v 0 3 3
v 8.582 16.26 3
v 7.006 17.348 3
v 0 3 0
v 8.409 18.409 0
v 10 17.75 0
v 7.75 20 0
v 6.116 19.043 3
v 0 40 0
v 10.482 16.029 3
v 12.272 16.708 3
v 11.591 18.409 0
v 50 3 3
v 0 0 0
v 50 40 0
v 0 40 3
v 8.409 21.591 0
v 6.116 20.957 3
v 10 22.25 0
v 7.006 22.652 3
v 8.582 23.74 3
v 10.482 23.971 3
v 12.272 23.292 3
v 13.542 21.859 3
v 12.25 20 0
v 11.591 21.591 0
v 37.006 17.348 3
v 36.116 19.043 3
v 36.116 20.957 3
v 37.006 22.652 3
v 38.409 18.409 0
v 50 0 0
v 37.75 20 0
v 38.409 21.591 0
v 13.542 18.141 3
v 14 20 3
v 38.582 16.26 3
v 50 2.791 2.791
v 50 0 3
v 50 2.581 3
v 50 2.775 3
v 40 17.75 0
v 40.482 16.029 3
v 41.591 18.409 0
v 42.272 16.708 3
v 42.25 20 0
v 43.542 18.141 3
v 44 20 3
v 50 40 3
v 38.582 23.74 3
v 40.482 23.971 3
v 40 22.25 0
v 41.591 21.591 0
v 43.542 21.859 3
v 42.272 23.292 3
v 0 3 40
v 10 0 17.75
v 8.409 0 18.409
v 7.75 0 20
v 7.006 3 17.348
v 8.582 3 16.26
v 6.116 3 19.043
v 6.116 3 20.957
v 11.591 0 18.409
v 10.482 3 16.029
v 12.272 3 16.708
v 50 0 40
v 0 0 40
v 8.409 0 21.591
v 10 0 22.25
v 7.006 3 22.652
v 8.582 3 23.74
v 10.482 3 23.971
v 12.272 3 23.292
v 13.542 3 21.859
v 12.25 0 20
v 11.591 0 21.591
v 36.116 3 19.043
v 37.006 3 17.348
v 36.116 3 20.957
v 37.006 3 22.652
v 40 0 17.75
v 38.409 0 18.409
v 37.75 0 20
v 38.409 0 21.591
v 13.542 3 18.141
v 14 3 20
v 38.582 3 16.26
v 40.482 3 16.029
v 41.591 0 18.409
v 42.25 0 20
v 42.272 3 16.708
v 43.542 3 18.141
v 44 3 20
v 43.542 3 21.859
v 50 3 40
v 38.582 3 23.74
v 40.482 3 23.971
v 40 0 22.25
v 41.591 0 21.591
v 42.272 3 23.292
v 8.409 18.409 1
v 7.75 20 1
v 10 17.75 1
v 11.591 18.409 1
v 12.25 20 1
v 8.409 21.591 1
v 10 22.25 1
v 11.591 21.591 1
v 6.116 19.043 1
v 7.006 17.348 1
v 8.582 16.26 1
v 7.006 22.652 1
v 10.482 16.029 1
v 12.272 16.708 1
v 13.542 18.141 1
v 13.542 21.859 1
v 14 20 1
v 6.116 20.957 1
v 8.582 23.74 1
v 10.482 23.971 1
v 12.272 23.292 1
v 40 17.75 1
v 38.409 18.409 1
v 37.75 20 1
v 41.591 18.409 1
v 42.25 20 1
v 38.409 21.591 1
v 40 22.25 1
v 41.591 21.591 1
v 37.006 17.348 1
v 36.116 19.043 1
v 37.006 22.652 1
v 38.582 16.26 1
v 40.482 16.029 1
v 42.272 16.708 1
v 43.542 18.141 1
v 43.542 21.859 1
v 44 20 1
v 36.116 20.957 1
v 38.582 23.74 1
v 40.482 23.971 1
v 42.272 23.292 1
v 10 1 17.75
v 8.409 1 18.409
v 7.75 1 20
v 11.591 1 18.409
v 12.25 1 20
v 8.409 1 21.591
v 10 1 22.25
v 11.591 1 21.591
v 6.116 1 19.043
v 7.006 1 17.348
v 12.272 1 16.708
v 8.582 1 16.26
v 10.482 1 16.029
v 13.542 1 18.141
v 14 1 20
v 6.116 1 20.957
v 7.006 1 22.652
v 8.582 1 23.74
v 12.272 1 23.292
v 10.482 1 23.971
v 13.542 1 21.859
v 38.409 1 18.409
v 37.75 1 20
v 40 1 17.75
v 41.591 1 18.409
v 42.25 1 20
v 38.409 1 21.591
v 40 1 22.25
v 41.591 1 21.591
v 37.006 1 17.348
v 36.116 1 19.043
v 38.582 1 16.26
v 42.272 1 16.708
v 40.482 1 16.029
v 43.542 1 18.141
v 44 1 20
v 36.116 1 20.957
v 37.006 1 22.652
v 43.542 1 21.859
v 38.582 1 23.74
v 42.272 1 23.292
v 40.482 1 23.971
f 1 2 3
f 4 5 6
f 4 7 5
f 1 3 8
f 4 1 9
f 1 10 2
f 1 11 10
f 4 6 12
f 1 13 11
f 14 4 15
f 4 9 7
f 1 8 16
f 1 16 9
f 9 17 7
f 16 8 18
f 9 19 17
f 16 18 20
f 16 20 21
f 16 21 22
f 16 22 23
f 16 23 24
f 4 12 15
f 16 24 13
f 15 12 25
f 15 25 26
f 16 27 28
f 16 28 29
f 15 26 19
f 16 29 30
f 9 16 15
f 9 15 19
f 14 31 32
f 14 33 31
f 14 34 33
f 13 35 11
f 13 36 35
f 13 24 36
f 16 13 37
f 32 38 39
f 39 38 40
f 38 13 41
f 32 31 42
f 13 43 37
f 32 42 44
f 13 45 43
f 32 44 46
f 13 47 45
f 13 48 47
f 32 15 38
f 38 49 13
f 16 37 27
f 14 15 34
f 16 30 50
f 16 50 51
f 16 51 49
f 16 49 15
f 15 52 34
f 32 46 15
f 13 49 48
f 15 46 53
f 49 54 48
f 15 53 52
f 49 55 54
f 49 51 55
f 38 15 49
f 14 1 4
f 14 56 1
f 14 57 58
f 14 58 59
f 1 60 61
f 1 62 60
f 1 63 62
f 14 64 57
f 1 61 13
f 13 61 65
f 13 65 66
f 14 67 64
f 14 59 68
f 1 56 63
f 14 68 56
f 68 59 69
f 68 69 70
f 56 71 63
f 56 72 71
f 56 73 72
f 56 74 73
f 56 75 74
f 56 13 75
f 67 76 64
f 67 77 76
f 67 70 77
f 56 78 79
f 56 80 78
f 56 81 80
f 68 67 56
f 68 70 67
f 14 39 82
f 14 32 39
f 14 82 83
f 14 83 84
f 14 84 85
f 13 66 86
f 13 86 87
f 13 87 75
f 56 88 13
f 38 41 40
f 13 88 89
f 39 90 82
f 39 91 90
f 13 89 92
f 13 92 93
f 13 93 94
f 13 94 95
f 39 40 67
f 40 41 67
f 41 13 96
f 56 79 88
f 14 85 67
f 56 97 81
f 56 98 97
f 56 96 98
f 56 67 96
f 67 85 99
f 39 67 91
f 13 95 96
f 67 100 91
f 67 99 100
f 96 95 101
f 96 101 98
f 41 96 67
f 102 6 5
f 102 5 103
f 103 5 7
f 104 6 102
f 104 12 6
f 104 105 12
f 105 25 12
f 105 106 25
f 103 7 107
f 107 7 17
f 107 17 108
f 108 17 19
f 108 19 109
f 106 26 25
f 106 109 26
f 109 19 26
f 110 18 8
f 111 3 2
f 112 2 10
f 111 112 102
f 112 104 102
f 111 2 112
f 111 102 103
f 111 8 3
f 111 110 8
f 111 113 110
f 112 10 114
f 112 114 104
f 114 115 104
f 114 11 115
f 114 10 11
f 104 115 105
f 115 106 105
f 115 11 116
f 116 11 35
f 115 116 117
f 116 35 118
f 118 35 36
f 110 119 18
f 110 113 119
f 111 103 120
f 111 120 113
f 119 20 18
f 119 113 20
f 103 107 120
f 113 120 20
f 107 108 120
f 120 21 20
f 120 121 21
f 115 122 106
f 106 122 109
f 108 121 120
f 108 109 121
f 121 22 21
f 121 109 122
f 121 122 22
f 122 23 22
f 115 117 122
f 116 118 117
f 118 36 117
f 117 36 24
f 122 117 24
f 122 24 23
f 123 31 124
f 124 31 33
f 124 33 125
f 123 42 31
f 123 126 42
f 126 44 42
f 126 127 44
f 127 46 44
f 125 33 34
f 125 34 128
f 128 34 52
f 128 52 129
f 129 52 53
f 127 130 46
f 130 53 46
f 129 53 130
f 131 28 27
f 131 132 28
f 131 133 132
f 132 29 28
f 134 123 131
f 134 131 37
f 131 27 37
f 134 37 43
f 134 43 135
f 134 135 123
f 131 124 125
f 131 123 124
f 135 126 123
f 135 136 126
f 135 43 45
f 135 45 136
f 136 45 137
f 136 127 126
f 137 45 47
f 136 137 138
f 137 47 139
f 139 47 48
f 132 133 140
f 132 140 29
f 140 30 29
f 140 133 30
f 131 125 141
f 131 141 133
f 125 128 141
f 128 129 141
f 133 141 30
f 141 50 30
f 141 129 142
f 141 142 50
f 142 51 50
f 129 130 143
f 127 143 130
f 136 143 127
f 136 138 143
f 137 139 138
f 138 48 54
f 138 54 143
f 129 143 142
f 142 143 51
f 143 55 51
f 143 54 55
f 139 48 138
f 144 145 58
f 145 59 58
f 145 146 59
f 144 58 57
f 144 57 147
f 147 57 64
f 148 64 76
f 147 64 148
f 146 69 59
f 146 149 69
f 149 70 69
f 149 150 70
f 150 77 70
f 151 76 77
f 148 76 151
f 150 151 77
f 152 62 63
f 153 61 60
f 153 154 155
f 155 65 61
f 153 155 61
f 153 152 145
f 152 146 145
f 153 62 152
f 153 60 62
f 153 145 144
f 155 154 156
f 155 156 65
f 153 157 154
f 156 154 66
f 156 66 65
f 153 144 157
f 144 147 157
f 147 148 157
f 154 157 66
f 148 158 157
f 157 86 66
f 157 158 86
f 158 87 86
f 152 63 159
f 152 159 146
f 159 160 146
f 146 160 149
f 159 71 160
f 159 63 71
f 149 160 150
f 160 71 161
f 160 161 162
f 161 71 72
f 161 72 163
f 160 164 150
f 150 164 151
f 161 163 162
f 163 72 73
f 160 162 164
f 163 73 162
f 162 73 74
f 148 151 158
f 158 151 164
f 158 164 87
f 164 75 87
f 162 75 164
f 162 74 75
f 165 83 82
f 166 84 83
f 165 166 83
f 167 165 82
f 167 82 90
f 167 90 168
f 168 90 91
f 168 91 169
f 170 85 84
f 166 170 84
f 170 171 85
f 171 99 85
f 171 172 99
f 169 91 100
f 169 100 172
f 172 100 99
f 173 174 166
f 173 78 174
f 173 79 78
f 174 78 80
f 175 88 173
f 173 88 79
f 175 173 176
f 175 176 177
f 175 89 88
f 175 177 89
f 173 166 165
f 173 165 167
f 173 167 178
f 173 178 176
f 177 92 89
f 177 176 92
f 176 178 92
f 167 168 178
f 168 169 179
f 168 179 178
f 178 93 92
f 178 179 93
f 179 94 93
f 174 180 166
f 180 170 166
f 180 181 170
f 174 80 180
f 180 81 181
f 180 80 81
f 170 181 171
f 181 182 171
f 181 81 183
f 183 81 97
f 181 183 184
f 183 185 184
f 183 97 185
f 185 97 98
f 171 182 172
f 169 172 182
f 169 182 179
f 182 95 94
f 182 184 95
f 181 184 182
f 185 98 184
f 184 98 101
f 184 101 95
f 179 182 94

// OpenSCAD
// L-bracket with countersunk M4 holes
difference() {
    // bracket body
    union() {
        // horizontal flange (X × Y × Z)
        cube([50, 40, 3]);
        // vertical flange (X × Y × Z), thickness along Y
        cube([50, 3, 40]);
    }

    // horizontal flange holes (axis along Z)
    for (x = [10, 40]) {
        // through-hole Ø4.5
        translate([x, 20, 0])
            cylinder(d = 4.5, h = 3, center = false);
        // countersink Ø8 × depth 2 from top (+Z)
        translate([x, 20, 1])
            cylinder(d = 8, h = 2, center = false);
    }

    // vertical flange holes (axis along Y)
    for (x = [10, 40]) {
        // through-hole Ø4.5
        translate([x, 0, 20])
            rotate([-90, 0, 0])
                cylinder(d = 4.5, h = 3, center = false);
        // countersink Ø8 × depth 2 from outer side (+Y)
        translate([x, 1, 20])
            rotate([-90, 0, 0])
                cylinder(d = 8, h = 2, center = false);
    }
}
